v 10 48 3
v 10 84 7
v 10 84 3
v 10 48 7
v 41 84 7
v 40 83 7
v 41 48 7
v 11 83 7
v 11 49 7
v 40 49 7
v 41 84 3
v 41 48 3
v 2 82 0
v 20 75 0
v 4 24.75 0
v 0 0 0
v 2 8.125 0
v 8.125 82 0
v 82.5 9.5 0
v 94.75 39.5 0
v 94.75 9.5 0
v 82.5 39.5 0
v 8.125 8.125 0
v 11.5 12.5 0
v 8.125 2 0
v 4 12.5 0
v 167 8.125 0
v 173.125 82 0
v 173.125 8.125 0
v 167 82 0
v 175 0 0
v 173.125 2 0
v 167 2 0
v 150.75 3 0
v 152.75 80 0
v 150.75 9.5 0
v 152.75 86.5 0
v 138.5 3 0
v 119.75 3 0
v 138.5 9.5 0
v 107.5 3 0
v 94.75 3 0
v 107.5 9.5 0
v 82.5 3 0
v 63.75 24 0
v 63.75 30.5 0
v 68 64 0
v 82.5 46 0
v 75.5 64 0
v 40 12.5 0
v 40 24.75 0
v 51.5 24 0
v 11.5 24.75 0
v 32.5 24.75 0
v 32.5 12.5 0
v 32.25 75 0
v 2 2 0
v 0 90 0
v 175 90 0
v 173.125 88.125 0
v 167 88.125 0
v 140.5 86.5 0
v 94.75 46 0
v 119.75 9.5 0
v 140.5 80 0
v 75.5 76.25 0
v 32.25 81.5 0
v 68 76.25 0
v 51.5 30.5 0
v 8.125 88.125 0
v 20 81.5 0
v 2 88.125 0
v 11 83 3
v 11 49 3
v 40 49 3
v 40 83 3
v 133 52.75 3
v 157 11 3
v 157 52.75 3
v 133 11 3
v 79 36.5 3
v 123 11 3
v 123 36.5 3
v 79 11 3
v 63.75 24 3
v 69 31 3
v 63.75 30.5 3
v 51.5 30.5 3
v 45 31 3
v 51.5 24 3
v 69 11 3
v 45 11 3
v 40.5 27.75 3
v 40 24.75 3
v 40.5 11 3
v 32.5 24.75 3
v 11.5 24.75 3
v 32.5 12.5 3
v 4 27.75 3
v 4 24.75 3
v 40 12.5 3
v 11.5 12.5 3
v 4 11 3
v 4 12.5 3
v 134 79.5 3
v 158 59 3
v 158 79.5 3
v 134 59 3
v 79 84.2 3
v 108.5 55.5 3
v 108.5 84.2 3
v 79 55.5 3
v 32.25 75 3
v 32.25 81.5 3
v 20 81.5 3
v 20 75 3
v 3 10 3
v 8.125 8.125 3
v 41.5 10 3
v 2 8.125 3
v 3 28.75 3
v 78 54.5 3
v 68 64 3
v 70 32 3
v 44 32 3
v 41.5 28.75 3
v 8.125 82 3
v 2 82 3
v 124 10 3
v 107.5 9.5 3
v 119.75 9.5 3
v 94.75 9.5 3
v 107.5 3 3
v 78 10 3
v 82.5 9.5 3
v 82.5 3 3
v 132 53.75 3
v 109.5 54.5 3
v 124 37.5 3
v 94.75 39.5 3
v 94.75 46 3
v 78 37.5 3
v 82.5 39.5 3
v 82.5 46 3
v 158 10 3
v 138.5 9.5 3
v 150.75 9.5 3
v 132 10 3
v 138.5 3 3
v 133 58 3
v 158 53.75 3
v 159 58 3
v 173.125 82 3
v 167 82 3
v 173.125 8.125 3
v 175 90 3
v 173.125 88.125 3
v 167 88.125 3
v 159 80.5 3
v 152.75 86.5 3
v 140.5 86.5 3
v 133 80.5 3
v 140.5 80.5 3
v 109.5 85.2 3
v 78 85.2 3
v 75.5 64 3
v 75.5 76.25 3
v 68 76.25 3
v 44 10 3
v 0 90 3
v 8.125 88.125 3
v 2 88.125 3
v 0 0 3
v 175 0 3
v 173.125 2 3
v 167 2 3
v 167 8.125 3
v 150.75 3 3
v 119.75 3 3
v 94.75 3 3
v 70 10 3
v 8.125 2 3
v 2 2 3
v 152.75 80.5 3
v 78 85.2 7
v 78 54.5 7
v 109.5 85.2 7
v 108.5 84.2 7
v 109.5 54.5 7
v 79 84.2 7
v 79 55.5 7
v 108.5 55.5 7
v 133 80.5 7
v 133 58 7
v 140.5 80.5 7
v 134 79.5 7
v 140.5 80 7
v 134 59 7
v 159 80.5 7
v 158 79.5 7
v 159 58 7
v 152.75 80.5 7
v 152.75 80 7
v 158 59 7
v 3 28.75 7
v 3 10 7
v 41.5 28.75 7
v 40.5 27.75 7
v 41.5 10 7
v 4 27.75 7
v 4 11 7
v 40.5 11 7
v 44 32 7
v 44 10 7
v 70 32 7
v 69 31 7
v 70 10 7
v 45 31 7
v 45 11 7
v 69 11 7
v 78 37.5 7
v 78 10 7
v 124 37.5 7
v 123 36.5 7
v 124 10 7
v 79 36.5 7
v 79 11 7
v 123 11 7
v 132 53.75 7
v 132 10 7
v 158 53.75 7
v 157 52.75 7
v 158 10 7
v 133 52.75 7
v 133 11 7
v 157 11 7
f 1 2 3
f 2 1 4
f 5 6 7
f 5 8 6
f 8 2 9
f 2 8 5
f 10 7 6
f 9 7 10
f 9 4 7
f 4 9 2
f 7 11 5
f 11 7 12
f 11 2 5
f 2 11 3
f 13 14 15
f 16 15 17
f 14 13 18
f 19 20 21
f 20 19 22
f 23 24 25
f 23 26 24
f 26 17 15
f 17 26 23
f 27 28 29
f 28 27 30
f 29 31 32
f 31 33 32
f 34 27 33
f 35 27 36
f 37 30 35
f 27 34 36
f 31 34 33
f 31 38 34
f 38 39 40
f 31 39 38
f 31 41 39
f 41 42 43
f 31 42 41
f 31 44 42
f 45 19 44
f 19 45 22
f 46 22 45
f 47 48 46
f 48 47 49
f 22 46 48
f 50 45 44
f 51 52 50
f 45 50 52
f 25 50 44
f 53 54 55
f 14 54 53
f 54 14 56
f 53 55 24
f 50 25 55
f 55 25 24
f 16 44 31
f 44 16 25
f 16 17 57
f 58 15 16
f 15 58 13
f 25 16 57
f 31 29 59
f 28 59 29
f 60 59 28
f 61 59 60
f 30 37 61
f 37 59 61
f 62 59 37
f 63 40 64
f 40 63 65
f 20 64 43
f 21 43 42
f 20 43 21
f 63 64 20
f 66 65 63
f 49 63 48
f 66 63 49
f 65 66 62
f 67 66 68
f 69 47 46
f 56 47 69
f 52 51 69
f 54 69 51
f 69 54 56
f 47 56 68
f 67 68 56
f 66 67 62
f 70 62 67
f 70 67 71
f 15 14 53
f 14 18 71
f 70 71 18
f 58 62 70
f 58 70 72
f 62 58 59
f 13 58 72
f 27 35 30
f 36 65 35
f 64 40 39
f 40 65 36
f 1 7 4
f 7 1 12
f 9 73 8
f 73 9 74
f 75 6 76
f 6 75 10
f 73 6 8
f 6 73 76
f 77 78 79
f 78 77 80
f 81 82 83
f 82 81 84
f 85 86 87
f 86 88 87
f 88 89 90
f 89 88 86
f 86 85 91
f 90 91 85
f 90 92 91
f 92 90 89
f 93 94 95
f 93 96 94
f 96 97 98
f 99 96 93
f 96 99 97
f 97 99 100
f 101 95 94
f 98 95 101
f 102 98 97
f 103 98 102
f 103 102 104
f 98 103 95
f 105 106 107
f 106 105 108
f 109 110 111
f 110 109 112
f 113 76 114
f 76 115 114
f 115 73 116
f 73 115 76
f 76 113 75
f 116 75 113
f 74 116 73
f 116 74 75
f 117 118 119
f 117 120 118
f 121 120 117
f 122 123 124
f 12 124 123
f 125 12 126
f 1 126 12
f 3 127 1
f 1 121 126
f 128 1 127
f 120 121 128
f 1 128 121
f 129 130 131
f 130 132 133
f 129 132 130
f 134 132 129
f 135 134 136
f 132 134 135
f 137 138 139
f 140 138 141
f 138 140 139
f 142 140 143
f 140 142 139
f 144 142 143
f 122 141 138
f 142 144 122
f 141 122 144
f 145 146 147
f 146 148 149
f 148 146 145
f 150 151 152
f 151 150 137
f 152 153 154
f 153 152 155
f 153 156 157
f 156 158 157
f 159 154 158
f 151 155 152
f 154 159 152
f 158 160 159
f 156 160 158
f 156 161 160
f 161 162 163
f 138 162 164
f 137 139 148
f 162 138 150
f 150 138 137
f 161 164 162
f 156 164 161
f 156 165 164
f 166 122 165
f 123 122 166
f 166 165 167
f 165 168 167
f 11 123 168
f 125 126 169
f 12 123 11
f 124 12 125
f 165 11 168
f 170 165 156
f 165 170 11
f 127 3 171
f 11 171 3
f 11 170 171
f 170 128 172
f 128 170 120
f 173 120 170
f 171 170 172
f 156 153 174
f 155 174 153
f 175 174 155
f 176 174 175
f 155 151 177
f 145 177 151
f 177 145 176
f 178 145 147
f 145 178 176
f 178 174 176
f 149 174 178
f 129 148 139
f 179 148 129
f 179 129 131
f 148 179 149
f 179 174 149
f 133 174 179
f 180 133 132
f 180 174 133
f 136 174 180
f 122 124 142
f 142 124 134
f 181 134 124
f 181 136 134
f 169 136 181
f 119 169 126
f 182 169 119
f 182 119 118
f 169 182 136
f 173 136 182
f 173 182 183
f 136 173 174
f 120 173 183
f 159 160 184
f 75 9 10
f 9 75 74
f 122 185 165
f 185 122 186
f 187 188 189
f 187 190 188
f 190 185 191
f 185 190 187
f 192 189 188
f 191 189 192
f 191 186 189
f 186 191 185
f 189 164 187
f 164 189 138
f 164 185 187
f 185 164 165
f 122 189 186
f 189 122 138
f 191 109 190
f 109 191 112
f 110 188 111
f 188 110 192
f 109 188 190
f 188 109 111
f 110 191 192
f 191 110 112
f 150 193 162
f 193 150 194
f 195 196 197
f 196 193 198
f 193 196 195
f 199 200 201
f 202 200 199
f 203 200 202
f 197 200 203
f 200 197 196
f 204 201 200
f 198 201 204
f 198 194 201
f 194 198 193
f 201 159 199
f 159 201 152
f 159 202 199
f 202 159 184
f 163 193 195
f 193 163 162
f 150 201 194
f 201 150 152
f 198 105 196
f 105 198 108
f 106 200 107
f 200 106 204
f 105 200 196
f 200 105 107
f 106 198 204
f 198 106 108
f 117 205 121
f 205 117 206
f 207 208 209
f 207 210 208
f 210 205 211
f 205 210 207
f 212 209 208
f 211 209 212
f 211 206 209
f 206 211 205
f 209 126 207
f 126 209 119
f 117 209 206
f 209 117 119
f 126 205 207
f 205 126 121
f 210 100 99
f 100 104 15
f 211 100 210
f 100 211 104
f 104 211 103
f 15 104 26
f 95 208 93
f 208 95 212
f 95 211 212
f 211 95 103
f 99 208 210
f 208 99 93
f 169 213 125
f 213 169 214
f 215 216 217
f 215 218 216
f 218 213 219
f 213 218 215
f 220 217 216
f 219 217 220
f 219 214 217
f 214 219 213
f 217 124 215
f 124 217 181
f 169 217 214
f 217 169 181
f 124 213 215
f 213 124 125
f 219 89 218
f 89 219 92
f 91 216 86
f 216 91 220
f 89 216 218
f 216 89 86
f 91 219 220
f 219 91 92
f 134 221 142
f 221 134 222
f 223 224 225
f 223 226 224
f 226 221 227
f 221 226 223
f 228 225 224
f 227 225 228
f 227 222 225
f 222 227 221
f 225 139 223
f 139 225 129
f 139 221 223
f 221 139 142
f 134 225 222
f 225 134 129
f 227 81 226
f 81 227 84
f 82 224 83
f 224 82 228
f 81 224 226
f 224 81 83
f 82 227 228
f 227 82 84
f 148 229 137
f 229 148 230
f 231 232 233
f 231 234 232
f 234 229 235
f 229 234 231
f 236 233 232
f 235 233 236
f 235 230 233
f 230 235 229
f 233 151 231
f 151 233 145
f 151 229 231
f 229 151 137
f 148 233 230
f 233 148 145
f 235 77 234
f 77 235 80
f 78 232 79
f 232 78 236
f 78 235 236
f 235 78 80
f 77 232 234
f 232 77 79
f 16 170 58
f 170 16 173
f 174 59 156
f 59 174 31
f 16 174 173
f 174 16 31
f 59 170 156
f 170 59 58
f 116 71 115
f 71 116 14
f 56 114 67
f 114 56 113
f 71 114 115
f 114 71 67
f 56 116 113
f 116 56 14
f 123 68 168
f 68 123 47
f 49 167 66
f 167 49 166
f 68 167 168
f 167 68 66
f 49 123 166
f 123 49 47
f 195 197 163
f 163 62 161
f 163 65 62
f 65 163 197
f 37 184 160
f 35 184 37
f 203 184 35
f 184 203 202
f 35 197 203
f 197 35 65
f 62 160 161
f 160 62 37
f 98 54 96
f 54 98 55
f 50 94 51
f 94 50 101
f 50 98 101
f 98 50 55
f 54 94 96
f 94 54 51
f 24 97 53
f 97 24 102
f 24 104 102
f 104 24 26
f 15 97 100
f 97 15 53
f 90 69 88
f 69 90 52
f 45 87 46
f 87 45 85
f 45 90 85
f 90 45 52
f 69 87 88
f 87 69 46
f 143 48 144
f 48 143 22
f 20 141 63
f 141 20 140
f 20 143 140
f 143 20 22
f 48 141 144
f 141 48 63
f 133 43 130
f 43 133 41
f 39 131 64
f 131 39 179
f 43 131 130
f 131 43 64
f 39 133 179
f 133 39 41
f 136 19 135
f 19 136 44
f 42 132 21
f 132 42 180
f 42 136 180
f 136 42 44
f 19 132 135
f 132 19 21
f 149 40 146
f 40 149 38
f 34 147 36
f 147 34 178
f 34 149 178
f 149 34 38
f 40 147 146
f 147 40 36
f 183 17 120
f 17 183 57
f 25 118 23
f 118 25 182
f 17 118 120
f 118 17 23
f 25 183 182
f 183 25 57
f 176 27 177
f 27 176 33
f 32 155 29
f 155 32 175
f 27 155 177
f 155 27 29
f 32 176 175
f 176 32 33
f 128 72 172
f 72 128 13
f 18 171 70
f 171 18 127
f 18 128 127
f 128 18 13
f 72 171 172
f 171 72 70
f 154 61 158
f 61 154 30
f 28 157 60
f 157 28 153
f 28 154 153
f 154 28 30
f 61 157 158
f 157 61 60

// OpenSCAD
//
// Main Plante for PiSmartPlant
// 011217-01
//
// main base 190 x 86
MaxX = 175;
MaxY = 90;

module fitbox(x, y)

{
    
    difference()
    {
        cube([x+2,y+2,7]);
        
        translate([1,1,3])
        cube([x,y,6]);
        
    }
    
    
}


module PlaceFitBox(x,y,xloc,yloc)
{
    translate([xloc,yloc])
fitbox(x, y);
    
}

$fn =400;

module PlaceGroveHole(xloc, yloc)
{
    translate([xloc,yloc,-20])
    cube([12.25,6.5,50]);

}

module VPlaceGroveHole(xloc, yloc)
{
    translate([xloc,yloc,-20])
    cube([7.5,12.25,50]);

}

difference()
{

union()
{
// start of base
cube ([MaxX,MaxY,3]);


// Place blocks for testing

// OLED
PlaceFitBox(29,34,10,MaxY-42);

// TH
PlaceFitBox(29.5,28.7,78,MaxY-42+6.5);
   

// Sun
PlaceFitBox(24,20.5,78+40+10+5,MaxY-42+10);

// Dial

PlaceFitBox(36.5,16.75,3,10);

// But
PlaceFitBox(24,20,10+34,10);


// I2C Mux  
PlaceFitBox(44,25.5 ,10+34+24+10,10);


// Air Quality Sensor
 PlaceFitBox(24.25-0.25,42-0.25,10+34+24+10+44+10,10);

/*
// leg boxes
translate([1,1,0])
cube([8,8,12]);


translate([MaxX-9,1,0])
cube([8,8,12]);

translate([1,MaxY-9,0])
cube([8,8,12]);

translate([MaxX-9,MaxY-9,0])
cube([8,8,12]);
*/
}


// Grove Holes

// OLED

PlaceGroveHole(10+29/2-4.5, MaxY-10-5);
// TH

VPlaceGroveHole(68, MaxY-42+16);
// Sun
PlaceGroveHole(78+40+10+12+0.5, MaxY-10);

// Dial
VPlaceGroveHole(10+22.5, 10+2.5);
VPlaceGroveHole(4, 10+2.5);
// But
PlaceGroveHole(10+12+11+24-4.5-1, 10+14);
// I2C Mux (3)
PlaceGroveHole(10+12+10+24+30-4.5+1, 10+20-4.5+6+6+2);
PlaceGroveHole(10+12+10+24+55-4.5+1, 4-1);
PlaceGroveHole(10+12+10+24+30-4.5+1, 4-1);

// Air Q
PlaceGroveHole(10+12+10+24+72+16-5.5, 4-1);
// leg holes


HoleSize = 6.125;

translate([2,2,-1])
cube([HoleSize,HoleSize,20]);

translate([MaxX-8,2,-1])
cube([HoleSize,HoleSize,20]);

translate([2,MaxY-8,-1])
cube([HoleSize,HoleSize,20]);

translate([MaxX-8,MaxY-8,-1])
cube([HoleSize,HoleSize,20]);
/*
// for test cubing

// block 1

#translate([-135,40,-10])
cube([200,60,100]);

#translate([115,40,-10])
cube([200,60,100]);
// block 2

#translate([0,-10,-10])
cube([200,60,100]);
*/
}
